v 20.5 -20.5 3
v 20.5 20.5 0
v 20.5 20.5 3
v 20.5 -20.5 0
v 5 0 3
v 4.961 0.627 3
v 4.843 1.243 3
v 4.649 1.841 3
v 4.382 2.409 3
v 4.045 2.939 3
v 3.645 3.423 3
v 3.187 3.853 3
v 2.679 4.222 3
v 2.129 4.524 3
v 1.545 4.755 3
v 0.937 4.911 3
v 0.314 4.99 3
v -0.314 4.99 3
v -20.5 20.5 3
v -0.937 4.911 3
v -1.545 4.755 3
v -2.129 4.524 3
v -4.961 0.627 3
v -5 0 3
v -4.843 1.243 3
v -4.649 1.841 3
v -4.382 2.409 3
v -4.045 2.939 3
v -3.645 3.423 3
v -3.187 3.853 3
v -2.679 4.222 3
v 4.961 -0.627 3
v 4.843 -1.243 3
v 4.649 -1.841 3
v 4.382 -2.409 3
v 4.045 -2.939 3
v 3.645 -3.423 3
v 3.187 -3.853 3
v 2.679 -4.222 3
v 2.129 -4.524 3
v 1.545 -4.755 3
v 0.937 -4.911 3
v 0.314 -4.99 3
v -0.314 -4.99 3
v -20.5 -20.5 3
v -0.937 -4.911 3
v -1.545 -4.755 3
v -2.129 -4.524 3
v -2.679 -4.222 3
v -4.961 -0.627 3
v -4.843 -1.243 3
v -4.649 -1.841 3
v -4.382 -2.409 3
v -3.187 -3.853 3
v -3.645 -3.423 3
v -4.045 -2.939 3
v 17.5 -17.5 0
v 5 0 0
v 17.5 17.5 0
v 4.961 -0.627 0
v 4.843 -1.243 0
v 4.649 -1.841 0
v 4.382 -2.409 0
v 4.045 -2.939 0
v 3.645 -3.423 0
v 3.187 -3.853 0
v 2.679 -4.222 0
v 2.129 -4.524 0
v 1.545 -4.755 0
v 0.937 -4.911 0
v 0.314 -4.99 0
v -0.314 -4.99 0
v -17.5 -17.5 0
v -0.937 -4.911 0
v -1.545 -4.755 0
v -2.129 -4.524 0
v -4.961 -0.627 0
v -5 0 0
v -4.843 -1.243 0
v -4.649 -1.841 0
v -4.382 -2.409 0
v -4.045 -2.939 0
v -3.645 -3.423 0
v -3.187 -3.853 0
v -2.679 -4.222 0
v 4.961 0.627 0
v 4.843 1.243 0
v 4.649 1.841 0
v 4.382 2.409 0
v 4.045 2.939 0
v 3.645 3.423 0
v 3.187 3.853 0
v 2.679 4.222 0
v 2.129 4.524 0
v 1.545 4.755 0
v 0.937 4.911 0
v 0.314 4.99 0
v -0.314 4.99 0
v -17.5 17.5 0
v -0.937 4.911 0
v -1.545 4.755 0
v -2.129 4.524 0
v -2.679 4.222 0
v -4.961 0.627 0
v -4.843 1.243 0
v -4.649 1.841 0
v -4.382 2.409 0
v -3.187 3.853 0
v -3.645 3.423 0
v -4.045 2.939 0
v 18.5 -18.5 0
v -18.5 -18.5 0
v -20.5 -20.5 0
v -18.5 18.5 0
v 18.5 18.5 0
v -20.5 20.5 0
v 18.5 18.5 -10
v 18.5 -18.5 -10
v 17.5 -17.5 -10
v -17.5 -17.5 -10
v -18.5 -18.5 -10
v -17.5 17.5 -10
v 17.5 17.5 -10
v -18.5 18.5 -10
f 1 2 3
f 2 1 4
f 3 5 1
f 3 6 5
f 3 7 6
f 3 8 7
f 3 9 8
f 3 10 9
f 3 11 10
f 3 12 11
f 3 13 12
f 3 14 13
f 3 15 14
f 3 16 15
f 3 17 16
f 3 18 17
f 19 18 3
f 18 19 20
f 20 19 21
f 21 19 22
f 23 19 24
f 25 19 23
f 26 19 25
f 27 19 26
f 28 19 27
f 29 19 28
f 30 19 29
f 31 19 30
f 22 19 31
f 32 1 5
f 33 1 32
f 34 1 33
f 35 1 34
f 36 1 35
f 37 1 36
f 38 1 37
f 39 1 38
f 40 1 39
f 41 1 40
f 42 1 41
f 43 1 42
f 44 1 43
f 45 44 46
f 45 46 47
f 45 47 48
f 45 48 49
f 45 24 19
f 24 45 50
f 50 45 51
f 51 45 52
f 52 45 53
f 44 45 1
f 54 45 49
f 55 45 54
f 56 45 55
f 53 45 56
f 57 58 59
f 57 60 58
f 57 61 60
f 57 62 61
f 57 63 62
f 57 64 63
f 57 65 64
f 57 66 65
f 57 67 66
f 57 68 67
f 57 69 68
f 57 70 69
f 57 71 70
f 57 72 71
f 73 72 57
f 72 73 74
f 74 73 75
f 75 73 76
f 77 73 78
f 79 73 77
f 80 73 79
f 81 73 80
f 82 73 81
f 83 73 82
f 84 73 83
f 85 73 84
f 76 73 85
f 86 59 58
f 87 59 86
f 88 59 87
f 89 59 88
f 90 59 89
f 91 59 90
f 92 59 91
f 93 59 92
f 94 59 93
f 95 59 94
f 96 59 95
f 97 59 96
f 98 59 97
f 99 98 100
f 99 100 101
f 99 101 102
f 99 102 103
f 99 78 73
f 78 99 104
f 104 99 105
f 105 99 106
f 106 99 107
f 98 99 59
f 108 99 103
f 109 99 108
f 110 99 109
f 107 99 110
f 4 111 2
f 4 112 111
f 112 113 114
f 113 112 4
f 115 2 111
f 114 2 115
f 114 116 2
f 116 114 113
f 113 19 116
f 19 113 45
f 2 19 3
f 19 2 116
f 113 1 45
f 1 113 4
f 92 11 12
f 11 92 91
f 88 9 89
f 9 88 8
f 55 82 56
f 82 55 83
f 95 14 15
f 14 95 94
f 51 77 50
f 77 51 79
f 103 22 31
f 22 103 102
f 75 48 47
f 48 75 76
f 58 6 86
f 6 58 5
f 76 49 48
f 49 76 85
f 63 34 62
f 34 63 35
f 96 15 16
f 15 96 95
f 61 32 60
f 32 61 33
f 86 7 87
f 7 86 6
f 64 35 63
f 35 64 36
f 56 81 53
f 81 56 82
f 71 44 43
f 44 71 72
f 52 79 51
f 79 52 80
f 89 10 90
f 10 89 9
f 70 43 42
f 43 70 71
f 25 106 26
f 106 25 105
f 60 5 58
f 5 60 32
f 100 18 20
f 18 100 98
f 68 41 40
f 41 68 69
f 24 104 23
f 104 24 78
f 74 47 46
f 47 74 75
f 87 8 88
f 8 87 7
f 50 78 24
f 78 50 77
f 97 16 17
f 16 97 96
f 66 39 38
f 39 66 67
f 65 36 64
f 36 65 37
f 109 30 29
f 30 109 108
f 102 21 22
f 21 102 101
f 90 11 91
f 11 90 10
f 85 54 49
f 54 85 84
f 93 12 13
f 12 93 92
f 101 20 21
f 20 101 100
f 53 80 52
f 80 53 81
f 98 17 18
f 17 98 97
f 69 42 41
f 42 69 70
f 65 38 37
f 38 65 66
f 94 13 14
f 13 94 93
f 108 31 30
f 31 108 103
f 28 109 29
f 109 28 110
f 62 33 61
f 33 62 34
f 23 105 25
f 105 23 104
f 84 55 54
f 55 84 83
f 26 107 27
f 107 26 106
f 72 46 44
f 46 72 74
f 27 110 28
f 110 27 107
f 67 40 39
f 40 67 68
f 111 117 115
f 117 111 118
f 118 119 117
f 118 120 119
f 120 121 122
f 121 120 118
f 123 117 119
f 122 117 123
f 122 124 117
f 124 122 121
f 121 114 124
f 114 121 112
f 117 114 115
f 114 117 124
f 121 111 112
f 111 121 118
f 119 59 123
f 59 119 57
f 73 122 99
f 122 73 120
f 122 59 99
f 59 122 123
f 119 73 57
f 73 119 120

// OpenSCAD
module inner(){
  difference(){
    cube([37, 37, 10], center=true);
    cube([35, 35, 20], center=true);
  }
}

module bulb_holder(){
  difference(){

    translate([0,0,1.5]) {cube([41,41,3], center=true);}
    translate([0,0,-2])
      cylinder(20, 5, 5, $fn = 50, center=true);
  }
}


union(){
  bulb_holder();
  translate([0,0,-5])
  inner();
}
// CSG.scad - Basic example of CSG usage

// translate([-24,0,0]) {
//     union() {
//         cube(15, center=true);
//         sphere(10);
//     }
// }

// intersection() {
//     cube(15, center=true);
//     sphere(10);
// }

// translate([24,0,0]) {
//     difference() {
//         cube(15, center=true);
//         sphere(10);
//     }
// }

echo(version=version());
// Written by Marius Kintel <marius@kintel.net>
//
// To the extent possible under law, the author(s) have dedicated all
// copyright and related and neighboring rights to this software to the
// public domain worldwide. This software is distributed without any
// warranty.
//
// You should have received a copy of the CC0 Public Domain
// Dedication along with this software.
// If not, see <http://creativecommons.org/publicdomain/zero/1.0/>.
